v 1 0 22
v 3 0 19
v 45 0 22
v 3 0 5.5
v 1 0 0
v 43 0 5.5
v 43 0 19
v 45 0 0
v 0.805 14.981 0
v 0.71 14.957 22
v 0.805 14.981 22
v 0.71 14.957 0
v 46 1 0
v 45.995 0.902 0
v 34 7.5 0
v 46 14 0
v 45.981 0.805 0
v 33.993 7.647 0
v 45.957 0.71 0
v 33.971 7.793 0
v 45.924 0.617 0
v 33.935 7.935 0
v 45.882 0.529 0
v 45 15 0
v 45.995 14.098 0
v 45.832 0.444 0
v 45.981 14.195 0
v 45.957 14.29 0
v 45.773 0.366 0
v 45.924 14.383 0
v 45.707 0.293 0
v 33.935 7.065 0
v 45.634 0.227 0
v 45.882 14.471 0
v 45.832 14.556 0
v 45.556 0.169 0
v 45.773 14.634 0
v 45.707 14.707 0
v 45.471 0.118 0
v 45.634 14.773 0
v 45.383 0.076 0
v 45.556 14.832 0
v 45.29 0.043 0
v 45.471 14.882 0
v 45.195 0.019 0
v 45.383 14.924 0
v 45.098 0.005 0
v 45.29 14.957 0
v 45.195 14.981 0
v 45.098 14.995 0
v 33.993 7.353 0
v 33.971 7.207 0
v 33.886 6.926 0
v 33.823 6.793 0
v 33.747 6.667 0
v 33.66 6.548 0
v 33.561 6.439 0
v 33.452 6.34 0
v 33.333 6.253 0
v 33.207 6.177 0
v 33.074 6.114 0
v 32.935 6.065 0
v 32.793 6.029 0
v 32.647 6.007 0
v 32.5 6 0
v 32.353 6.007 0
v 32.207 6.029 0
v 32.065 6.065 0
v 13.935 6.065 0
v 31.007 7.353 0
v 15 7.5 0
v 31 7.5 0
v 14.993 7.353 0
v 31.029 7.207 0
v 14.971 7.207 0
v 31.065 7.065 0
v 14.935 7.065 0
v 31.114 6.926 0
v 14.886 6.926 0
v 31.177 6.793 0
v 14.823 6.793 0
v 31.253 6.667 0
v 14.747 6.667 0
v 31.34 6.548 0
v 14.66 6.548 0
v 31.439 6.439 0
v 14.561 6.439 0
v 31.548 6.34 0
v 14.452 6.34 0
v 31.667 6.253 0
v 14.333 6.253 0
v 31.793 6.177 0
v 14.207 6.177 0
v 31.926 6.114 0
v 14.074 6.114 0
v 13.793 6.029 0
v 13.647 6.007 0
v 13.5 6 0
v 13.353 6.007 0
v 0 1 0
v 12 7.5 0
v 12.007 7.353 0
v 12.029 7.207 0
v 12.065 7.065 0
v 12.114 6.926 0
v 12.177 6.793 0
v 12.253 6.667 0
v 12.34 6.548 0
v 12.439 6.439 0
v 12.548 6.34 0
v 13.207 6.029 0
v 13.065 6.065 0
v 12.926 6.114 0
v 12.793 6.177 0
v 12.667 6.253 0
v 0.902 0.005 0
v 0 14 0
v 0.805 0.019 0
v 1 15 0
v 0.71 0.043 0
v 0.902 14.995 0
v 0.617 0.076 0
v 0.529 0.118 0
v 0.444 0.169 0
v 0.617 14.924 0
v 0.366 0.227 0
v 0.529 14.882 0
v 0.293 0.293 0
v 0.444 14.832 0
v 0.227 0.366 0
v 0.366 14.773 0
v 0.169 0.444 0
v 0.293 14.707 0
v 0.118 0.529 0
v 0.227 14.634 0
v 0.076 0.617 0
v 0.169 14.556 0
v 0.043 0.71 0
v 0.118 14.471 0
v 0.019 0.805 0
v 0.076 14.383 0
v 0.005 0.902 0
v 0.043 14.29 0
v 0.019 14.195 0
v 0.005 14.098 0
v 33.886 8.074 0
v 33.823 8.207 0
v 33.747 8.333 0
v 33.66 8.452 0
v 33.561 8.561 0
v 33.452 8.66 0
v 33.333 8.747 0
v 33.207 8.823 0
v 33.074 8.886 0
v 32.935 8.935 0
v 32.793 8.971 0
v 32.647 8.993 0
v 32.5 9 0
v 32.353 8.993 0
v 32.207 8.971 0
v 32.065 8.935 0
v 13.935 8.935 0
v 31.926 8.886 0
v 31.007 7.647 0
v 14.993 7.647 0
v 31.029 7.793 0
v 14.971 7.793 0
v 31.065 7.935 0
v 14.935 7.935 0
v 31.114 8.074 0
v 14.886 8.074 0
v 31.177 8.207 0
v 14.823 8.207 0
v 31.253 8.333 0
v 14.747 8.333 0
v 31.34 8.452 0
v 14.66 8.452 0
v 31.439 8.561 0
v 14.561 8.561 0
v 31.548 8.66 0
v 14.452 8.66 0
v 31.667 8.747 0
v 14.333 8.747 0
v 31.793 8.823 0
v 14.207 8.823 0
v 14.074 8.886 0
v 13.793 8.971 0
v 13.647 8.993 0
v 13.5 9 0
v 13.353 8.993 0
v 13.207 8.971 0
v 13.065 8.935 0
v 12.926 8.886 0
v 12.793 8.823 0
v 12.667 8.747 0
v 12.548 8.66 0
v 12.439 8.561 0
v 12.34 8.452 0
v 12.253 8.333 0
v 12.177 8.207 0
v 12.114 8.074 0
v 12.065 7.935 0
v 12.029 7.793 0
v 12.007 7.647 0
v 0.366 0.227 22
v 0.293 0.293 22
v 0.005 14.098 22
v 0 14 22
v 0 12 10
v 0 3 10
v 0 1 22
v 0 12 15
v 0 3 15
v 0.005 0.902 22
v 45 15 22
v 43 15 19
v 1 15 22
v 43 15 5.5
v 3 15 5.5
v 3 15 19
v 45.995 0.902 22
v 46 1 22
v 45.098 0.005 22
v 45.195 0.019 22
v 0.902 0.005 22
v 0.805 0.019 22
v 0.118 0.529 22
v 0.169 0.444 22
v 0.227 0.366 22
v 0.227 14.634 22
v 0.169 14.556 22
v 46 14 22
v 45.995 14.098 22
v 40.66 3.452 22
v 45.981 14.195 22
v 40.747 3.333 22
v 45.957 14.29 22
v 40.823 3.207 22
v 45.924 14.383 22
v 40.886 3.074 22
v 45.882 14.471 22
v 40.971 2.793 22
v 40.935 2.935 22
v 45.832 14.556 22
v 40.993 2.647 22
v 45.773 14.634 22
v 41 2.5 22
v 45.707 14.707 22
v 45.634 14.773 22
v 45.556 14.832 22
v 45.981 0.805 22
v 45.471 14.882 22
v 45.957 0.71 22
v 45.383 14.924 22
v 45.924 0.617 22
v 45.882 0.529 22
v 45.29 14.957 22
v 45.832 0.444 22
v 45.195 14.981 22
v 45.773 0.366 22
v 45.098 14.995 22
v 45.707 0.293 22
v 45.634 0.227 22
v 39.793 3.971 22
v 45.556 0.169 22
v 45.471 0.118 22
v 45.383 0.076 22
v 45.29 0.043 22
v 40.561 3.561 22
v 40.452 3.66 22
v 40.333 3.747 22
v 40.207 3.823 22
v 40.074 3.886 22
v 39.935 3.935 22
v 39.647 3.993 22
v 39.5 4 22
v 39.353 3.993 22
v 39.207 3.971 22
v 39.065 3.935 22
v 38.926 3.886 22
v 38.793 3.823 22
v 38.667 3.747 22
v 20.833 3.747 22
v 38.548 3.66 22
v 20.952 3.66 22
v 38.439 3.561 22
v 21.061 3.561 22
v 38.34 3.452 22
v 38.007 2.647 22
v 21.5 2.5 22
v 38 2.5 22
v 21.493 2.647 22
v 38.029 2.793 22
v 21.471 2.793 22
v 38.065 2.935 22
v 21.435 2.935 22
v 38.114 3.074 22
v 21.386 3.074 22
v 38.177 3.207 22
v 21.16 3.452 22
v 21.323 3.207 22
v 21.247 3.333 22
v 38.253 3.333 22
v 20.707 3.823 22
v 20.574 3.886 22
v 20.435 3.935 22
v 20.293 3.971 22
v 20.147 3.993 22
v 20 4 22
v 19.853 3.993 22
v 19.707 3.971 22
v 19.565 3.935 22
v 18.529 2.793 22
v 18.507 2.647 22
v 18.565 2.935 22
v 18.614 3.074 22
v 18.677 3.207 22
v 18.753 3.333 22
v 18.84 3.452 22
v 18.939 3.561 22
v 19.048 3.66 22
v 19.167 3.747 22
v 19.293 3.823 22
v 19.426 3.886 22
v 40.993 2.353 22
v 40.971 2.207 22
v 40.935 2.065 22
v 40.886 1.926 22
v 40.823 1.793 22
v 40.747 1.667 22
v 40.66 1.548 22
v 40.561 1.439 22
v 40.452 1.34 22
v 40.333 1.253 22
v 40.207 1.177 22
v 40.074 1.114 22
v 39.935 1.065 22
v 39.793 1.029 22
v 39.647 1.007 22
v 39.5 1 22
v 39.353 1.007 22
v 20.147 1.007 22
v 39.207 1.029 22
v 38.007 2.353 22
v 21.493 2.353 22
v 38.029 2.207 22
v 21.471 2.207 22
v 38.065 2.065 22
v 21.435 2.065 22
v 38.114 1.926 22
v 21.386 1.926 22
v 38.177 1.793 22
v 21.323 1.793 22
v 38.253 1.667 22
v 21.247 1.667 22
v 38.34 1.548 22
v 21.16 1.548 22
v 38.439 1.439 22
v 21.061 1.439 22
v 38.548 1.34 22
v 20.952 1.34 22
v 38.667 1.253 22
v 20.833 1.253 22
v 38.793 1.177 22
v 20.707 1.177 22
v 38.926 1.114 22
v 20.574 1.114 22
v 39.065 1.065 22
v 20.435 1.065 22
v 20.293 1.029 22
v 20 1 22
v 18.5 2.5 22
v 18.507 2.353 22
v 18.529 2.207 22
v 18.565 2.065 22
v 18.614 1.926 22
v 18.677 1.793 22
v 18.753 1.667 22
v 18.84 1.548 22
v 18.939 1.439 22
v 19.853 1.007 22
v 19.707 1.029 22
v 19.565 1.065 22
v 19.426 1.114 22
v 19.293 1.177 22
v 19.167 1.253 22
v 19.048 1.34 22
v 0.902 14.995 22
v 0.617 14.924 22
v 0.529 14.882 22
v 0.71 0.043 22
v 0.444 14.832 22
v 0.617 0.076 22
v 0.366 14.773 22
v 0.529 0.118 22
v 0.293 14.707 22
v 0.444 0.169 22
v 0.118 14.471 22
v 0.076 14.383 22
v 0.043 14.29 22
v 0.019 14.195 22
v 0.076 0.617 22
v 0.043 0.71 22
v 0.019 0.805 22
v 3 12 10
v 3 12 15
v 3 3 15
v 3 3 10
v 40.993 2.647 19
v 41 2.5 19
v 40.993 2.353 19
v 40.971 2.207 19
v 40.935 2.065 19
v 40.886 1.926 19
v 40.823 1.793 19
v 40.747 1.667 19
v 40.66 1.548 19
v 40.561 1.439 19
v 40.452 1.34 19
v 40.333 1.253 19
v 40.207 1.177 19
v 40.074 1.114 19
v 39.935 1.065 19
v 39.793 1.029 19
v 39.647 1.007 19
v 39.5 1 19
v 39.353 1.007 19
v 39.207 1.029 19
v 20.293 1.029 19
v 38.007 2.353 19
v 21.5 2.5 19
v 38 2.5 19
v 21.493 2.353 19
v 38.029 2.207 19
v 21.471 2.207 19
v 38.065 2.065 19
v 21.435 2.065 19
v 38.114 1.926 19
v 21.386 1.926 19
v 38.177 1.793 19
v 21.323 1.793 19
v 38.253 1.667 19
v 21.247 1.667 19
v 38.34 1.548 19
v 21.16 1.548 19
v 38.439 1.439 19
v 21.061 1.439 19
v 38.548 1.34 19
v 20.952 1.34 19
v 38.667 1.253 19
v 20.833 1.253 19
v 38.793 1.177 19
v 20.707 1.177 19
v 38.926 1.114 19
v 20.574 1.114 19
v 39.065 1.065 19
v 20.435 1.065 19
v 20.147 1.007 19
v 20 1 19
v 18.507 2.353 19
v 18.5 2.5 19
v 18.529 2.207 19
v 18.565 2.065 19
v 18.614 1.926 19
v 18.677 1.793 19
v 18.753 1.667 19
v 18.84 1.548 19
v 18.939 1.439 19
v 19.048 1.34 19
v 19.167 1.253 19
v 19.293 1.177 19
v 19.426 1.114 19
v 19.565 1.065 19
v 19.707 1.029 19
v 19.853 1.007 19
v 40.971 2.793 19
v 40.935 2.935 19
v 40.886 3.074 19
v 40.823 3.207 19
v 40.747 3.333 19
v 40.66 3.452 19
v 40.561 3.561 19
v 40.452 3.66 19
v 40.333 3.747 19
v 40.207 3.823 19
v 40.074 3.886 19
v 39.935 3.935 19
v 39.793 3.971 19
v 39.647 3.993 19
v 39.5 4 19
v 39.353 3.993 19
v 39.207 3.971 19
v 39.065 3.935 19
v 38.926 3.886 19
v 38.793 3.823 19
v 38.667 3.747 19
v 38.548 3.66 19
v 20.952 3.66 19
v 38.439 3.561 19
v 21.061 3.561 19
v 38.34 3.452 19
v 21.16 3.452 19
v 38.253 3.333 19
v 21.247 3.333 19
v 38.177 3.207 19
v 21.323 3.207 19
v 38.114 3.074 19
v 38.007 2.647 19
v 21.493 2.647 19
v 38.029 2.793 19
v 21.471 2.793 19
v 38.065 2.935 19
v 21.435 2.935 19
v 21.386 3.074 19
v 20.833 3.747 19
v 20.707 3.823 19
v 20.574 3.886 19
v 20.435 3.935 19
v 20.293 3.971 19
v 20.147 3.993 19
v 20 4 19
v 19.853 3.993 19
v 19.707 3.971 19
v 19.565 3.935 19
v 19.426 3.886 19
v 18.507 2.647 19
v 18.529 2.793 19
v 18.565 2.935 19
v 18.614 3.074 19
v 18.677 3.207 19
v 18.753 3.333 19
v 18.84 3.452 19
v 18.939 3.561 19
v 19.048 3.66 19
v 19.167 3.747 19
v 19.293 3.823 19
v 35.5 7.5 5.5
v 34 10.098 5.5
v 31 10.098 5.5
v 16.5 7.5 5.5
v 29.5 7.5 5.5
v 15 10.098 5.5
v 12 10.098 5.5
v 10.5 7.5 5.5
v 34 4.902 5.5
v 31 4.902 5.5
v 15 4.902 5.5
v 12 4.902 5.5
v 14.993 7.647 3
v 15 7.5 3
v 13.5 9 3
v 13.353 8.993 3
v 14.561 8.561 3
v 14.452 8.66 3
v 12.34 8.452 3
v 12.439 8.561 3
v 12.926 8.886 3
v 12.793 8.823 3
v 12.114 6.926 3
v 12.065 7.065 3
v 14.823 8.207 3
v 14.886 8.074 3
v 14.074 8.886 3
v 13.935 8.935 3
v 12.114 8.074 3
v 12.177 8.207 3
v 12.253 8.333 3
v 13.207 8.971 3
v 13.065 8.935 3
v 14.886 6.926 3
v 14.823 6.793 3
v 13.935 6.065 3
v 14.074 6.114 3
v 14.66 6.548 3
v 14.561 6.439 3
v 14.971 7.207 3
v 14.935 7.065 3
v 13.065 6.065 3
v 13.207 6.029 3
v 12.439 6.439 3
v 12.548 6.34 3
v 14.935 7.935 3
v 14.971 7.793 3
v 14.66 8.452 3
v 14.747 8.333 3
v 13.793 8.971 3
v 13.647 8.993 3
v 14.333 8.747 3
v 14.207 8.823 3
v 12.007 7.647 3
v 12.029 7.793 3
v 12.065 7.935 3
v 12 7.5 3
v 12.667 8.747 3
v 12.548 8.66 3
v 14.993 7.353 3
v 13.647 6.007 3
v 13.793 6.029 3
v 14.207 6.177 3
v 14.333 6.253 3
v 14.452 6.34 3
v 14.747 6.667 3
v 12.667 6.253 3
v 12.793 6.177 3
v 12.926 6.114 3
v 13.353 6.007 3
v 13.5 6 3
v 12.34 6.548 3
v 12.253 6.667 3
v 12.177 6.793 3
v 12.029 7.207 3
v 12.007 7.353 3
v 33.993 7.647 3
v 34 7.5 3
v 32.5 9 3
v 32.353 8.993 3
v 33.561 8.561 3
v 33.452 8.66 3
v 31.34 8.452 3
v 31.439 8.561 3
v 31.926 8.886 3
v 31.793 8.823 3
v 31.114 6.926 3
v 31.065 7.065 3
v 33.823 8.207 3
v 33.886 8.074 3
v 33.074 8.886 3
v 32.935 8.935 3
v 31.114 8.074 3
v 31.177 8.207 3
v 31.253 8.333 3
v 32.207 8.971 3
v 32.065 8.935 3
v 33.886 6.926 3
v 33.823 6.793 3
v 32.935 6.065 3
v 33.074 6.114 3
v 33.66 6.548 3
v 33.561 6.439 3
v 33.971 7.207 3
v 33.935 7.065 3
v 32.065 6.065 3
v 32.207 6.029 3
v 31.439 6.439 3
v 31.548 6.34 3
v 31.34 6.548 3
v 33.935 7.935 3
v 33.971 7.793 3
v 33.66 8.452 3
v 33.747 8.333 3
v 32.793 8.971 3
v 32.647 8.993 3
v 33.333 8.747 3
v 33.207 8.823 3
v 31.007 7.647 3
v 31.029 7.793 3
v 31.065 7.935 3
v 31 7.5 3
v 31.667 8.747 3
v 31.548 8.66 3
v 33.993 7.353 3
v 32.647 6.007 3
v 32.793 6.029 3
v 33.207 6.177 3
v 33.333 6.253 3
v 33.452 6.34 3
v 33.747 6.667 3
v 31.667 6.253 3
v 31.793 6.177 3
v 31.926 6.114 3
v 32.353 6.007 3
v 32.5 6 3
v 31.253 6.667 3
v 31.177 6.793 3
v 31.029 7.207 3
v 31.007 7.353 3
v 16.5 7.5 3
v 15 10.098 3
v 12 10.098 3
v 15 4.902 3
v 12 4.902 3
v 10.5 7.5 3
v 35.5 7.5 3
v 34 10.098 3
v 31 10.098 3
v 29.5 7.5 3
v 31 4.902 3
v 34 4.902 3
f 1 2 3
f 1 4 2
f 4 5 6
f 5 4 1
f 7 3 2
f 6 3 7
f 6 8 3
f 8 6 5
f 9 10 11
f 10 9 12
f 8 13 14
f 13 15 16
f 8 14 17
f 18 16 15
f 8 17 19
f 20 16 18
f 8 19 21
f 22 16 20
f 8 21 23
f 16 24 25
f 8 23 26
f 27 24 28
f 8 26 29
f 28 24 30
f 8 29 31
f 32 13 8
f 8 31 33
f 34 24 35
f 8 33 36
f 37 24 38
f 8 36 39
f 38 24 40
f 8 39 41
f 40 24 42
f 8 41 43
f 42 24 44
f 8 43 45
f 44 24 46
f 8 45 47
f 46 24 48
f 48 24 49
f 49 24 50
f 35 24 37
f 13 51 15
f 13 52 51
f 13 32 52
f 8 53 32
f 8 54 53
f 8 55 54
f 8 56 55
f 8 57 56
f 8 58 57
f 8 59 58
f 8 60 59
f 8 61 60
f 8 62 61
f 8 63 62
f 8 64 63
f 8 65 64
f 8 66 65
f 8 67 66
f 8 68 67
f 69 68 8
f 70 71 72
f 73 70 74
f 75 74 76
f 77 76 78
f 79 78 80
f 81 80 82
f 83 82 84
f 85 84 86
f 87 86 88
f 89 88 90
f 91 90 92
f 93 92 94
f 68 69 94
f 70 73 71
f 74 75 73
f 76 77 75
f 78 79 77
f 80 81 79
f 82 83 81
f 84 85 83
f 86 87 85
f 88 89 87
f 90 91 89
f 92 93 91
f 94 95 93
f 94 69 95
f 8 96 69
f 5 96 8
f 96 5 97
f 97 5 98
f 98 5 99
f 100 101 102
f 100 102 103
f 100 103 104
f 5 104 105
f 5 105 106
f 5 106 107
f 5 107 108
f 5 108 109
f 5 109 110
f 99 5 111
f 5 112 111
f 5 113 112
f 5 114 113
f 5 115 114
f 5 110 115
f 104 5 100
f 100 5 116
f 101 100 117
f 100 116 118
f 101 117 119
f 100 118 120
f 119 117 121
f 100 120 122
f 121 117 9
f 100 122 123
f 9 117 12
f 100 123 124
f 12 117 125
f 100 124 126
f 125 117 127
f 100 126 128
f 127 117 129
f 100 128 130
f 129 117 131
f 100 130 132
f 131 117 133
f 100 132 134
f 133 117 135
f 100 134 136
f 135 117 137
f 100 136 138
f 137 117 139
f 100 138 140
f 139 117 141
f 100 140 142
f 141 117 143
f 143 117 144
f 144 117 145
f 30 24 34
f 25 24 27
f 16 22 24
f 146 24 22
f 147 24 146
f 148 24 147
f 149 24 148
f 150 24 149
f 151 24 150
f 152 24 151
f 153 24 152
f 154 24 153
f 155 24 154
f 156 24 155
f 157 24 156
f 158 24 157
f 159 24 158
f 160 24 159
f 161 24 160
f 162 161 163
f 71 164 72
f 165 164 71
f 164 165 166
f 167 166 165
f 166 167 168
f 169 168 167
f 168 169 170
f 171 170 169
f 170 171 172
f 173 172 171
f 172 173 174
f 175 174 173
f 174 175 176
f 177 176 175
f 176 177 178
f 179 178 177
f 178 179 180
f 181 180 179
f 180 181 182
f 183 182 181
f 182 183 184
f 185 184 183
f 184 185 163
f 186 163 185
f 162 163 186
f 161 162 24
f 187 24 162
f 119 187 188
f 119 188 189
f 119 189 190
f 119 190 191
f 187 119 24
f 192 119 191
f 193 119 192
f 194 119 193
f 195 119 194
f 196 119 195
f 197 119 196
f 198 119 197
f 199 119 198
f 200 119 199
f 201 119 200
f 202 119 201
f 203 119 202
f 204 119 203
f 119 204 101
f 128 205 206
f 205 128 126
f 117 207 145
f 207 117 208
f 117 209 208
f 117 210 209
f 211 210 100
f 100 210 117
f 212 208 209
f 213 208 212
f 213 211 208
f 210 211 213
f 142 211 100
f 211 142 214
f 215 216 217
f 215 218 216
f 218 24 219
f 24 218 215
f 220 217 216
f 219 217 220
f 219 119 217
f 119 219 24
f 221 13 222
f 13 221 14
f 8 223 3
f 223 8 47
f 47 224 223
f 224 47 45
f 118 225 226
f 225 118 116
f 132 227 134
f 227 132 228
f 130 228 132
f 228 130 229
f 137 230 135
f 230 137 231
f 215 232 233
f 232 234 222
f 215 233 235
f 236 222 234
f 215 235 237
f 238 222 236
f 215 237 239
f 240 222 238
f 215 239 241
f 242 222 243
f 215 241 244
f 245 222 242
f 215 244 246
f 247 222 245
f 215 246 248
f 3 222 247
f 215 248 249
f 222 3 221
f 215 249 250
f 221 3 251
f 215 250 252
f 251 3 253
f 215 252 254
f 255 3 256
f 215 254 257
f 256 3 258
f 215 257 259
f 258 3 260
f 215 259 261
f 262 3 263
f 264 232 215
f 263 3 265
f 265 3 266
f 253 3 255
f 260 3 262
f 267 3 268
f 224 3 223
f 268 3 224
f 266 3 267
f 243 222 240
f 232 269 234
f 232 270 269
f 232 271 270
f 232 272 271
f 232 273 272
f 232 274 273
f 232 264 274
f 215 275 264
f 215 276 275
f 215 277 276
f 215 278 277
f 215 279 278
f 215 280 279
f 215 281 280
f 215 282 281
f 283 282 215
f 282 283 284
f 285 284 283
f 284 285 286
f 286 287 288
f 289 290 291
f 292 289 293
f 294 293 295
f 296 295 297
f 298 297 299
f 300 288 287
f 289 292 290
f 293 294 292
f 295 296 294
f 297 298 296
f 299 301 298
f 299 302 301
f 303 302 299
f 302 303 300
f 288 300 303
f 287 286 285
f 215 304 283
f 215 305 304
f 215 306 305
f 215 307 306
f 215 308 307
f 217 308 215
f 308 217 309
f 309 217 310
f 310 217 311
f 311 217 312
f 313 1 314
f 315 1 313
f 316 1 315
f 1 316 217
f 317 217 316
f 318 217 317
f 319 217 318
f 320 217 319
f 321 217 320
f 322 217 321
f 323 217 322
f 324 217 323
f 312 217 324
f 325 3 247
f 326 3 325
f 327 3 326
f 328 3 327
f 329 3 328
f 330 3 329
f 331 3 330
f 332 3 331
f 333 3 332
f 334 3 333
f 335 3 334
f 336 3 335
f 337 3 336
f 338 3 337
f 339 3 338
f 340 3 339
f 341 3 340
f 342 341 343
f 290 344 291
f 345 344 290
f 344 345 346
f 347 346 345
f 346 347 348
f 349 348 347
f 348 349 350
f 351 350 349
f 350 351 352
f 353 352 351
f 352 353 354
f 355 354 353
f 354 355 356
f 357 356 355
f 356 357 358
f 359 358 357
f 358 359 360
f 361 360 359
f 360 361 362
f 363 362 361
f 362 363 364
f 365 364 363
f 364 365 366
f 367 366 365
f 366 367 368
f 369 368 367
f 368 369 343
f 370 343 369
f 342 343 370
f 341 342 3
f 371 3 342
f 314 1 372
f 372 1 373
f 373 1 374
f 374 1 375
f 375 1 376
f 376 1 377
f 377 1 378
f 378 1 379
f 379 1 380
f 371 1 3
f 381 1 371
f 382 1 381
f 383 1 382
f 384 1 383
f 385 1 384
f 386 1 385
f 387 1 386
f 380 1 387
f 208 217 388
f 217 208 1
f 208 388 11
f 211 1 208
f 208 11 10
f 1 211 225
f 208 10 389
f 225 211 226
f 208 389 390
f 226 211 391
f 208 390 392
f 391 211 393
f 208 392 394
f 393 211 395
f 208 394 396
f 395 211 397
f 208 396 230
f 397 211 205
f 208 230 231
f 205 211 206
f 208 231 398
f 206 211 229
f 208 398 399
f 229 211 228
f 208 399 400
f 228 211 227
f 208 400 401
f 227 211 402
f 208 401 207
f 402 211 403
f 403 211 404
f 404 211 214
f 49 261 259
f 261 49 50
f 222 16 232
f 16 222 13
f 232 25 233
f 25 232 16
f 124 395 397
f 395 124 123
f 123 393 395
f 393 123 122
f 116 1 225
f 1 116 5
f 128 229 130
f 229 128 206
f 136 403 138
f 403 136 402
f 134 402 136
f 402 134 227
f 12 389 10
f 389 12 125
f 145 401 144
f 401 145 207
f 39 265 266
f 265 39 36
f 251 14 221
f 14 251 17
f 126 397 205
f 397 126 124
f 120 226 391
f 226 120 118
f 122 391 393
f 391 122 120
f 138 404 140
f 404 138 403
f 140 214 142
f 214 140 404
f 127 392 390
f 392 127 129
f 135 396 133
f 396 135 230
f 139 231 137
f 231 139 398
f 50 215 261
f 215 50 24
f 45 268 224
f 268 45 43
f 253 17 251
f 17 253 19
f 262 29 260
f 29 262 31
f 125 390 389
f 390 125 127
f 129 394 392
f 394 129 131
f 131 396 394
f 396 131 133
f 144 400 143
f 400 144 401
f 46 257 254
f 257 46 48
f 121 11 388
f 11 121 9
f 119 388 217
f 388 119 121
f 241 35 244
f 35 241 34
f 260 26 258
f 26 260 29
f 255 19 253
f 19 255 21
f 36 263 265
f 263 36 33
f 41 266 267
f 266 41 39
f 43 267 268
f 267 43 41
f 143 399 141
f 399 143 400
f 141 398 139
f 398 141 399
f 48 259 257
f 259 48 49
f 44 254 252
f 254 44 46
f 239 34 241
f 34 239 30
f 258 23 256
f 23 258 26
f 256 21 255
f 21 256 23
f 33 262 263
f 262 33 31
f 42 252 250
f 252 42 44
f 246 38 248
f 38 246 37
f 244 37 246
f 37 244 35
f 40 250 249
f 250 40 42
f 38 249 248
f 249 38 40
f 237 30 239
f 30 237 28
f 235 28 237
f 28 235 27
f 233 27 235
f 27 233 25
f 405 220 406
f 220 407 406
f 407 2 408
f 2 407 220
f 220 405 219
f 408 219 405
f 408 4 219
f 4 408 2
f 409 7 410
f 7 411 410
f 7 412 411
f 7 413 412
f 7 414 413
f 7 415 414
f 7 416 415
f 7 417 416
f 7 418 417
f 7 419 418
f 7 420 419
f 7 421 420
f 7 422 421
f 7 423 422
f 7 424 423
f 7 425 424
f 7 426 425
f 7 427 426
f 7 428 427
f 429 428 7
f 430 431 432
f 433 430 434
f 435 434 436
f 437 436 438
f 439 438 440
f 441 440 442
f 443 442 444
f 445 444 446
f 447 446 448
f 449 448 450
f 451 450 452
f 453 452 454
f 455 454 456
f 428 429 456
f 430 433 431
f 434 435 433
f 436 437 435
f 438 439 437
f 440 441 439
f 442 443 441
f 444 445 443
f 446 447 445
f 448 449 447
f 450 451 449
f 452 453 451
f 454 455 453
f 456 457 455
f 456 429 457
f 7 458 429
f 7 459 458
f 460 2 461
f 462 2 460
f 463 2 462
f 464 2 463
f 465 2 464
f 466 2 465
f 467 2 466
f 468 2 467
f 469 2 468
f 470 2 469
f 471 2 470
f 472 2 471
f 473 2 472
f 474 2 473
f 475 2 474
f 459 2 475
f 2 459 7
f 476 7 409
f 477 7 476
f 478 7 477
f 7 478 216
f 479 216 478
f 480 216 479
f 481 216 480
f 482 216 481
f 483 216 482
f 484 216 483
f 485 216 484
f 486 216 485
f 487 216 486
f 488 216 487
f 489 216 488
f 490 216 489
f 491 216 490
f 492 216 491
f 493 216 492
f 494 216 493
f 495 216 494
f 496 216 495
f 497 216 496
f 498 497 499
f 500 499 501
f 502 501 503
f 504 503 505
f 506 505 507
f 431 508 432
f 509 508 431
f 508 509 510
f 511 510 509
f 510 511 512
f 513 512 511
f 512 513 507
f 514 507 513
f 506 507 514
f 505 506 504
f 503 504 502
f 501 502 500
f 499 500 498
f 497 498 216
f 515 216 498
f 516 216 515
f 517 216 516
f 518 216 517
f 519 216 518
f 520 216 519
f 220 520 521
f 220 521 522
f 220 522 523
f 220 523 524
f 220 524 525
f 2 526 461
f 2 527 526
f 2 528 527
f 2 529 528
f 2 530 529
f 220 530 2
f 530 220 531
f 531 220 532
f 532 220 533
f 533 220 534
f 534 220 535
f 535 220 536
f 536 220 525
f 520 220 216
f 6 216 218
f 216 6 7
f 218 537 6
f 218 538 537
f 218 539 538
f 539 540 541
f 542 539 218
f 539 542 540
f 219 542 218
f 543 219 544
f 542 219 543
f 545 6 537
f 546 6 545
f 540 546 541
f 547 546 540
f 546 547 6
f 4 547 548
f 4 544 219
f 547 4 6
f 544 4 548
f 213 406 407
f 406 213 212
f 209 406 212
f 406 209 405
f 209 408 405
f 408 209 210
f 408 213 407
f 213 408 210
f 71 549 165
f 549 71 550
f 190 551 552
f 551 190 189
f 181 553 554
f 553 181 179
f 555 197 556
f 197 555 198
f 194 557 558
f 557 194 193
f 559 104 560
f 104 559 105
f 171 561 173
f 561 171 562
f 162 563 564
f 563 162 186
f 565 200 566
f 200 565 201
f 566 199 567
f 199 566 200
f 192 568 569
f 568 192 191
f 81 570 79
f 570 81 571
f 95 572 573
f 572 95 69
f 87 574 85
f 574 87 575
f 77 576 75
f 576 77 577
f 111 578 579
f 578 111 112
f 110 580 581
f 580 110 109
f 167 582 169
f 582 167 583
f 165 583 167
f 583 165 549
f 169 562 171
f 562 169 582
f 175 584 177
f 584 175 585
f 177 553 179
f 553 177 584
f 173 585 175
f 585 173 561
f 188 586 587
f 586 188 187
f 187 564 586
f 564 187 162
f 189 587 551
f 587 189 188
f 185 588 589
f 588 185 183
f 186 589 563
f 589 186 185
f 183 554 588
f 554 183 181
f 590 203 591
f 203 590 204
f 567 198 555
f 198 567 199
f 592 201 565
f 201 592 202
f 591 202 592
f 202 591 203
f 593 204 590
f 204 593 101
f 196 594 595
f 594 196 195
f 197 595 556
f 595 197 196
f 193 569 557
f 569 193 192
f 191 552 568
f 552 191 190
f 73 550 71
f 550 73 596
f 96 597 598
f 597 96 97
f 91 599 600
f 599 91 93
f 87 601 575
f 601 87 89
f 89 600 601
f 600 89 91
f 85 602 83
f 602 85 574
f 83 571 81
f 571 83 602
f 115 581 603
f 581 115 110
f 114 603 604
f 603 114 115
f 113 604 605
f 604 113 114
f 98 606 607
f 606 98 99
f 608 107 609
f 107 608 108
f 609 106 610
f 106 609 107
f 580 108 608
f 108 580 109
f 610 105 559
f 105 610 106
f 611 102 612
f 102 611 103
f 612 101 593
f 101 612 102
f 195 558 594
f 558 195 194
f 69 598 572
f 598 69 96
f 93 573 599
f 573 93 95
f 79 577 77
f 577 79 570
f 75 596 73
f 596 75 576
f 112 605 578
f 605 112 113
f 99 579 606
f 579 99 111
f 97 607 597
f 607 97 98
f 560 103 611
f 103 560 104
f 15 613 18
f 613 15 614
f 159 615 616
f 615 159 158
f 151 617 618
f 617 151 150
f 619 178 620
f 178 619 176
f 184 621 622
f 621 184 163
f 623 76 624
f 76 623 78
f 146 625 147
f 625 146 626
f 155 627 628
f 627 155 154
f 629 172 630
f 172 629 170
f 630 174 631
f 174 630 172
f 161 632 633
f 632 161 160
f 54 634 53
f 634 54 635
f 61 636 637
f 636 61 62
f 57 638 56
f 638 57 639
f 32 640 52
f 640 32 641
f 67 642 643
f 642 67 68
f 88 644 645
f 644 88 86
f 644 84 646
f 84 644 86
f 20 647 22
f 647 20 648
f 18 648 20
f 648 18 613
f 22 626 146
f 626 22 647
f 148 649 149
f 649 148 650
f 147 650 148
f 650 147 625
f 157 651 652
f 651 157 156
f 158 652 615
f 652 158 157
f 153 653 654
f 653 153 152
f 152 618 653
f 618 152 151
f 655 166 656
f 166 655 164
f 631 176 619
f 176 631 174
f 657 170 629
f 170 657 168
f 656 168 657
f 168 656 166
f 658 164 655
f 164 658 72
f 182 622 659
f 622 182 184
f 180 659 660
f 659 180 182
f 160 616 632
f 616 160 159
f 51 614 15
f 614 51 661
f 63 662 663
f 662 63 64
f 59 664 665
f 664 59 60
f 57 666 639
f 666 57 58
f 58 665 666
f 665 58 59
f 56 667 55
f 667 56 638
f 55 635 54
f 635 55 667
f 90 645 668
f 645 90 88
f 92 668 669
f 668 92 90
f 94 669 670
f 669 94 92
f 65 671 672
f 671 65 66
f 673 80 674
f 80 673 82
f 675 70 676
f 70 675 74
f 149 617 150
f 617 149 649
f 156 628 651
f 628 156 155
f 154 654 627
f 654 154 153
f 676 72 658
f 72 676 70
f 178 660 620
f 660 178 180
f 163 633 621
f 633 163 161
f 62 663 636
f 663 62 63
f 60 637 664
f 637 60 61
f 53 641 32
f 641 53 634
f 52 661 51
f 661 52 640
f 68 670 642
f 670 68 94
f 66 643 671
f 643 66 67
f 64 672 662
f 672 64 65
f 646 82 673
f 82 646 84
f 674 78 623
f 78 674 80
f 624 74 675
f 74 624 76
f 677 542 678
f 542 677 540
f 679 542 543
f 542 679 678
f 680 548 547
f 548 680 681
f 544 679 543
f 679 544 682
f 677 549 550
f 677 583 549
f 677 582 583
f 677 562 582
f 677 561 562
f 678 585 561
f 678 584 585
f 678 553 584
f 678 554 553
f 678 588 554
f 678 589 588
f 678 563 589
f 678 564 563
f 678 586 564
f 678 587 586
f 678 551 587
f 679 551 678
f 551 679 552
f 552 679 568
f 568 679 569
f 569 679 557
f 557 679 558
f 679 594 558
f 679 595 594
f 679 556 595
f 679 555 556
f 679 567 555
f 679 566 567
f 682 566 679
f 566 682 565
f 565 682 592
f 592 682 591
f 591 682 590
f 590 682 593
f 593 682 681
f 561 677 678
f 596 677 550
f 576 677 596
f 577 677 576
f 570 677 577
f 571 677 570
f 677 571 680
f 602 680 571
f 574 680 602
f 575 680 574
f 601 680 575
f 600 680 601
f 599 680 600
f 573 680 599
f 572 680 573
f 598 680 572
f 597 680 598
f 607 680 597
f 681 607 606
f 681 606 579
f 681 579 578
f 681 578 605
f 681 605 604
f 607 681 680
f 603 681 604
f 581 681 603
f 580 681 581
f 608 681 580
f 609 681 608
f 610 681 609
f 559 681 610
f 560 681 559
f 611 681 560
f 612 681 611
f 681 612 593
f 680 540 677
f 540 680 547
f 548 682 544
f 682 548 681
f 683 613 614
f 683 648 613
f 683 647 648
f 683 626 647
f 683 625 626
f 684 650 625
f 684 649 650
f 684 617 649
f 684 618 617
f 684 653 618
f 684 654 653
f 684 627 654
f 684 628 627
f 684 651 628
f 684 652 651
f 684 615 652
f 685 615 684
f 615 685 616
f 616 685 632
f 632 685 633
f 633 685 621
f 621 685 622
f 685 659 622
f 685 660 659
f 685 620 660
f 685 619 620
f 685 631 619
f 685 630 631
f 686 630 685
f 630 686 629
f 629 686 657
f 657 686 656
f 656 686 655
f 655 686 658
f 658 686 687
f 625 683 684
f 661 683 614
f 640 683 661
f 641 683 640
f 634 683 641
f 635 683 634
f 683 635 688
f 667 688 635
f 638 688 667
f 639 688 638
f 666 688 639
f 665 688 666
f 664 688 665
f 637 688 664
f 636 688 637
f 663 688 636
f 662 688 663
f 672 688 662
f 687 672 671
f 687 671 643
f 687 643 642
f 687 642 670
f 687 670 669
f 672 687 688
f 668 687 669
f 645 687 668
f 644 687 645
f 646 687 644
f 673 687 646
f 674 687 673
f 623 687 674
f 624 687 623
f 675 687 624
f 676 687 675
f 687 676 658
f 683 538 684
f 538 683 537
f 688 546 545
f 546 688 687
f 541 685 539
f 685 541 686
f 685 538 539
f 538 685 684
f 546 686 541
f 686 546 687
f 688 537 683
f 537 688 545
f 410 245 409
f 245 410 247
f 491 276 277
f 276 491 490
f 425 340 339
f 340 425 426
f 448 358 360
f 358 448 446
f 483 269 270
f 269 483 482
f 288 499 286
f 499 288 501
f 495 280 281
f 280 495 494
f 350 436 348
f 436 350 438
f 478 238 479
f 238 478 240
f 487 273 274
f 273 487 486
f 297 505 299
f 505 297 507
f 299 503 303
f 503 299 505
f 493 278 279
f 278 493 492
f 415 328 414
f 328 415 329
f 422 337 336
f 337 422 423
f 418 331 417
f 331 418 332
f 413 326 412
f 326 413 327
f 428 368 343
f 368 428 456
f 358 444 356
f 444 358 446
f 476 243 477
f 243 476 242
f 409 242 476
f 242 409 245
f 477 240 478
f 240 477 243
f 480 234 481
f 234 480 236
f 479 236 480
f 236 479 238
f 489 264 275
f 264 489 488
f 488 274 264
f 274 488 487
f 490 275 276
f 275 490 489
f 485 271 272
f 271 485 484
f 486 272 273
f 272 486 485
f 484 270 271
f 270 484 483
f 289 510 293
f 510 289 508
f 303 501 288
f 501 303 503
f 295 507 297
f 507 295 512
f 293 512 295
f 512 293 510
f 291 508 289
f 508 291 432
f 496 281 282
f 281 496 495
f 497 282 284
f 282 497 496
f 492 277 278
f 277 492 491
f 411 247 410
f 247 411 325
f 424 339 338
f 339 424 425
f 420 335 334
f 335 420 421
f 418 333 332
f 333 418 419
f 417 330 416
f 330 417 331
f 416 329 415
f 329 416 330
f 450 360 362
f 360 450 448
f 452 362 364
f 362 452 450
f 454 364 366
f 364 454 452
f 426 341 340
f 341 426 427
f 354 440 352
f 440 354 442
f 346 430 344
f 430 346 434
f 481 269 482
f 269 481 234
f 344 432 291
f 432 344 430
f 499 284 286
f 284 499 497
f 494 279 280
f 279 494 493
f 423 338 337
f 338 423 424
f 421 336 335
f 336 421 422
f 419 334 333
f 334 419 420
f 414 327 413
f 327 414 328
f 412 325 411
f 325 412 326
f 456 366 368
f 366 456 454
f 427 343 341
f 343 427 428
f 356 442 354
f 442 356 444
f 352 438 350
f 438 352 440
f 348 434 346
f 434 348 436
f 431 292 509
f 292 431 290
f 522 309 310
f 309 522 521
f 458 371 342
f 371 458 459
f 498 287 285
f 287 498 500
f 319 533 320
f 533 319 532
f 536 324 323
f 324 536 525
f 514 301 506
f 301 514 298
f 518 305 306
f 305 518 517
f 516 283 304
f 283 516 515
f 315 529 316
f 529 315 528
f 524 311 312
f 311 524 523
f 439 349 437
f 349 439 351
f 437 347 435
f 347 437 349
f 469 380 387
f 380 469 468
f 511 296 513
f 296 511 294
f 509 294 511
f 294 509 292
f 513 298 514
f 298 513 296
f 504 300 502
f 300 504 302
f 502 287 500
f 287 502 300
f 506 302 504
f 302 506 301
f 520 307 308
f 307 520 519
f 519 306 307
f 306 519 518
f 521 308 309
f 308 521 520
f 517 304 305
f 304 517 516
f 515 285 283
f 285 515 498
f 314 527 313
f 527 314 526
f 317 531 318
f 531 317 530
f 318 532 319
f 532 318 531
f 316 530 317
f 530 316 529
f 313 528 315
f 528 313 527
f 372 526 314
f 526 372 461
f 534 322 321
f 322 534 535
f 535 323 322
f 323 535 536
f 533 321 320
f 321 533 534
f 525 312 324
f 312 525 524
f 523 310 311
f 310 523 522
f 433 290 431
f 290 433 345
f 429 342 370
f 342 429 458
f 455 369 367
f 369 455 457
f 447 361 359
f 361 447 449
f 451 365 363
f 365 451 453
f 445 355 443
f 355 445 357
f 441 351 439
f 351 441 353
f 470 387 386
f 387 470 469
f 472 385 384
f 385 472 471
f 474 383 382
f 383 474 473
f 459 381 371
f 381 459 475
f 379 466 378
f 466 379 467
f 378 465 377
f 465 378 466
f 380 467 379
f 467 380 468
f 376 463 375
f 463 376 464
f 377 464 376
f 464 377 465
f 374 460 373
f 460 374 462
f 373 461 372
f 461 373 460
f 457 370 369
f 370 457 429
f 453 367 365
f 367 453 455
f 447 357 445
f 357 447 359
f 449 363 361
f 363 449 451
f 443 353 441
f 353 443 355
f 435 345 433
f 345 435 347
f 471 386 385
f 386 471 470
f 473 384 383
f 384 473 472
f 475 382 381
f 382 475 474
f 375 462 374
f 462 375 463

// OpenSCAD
width=46;
depth=15;
height=22;
corner_radius=1;
thickness=3;
screw_diameter=3;
nut_diameter=6;
nut_height=2.5;
board_distence=19.5;
mounting_distence=19;

difference()
{
  //main body
  hull()
  {
    translate([corner_radius, corner_radius, 0]) cylinder(r=corner_radius, h=height, $fn=64);
    translate([corner_radius, depth-corner_radius, 0]) cylinder(r=corner_radius, h=height, $fn=64);
    translate([width-corner_radius, corner_radius, 0]) cylinder(r=corner_radius, h=height, $fn=64);
    translate([width-corner_radius, depth-corner_radius, 0]) cylinder(r=corner_radius, h=height, $fn=64);
  }
  
  bottom_thickness = thickness+nut_height;
  
  //main cut out
  translate([thickness, 0, thickness+nut_height]) cube([width-(2*thickness), depth, height-thickness-bottom_thickness]);
  
  //cable cut out
  translate([0, (depth-9)/2, 10]) cube([thickness, 9, 5]);
  
  //center the screw holes
  mount_offset_y = depth/2;
  mount_offset_x = ((width-(2*thickness)-mounting_distence) / 2) + thickness;
  translate([mount_offset_x, mount_offset_y, 0]) cylinder(d=screw_diameter, h=bottom_thickness, $fn=64);
  translate([mount_offset_x + mounting_distence, mount_offset_y, 0]) cylinder(d=screw_diameter, h=bottom_thickness, $fn=64);
  
  //cut the nut traps
  translate([mount_offset_x, mount_offset_y, thickness]) cylinder(d=nut_diameter, h=nut_height, $fn=6);
  translate([mount_offset_x + mounting_distence, mount_offset_y, thickness]) cylinder(d=nut_diameter, h=nut_height, $fn=6);
  
  //cut the board holes
  translate([width - 6.5, 2.5, height - thickness]) cylinder(d=screw_diameter, h=bottom_thickness, $fn=64);
  translate([width - 6.5 - board_distence, 2.5, height - thickness]) cylinder(d=screw_diameter, h=bottom_thickness, $fn=64);
}
